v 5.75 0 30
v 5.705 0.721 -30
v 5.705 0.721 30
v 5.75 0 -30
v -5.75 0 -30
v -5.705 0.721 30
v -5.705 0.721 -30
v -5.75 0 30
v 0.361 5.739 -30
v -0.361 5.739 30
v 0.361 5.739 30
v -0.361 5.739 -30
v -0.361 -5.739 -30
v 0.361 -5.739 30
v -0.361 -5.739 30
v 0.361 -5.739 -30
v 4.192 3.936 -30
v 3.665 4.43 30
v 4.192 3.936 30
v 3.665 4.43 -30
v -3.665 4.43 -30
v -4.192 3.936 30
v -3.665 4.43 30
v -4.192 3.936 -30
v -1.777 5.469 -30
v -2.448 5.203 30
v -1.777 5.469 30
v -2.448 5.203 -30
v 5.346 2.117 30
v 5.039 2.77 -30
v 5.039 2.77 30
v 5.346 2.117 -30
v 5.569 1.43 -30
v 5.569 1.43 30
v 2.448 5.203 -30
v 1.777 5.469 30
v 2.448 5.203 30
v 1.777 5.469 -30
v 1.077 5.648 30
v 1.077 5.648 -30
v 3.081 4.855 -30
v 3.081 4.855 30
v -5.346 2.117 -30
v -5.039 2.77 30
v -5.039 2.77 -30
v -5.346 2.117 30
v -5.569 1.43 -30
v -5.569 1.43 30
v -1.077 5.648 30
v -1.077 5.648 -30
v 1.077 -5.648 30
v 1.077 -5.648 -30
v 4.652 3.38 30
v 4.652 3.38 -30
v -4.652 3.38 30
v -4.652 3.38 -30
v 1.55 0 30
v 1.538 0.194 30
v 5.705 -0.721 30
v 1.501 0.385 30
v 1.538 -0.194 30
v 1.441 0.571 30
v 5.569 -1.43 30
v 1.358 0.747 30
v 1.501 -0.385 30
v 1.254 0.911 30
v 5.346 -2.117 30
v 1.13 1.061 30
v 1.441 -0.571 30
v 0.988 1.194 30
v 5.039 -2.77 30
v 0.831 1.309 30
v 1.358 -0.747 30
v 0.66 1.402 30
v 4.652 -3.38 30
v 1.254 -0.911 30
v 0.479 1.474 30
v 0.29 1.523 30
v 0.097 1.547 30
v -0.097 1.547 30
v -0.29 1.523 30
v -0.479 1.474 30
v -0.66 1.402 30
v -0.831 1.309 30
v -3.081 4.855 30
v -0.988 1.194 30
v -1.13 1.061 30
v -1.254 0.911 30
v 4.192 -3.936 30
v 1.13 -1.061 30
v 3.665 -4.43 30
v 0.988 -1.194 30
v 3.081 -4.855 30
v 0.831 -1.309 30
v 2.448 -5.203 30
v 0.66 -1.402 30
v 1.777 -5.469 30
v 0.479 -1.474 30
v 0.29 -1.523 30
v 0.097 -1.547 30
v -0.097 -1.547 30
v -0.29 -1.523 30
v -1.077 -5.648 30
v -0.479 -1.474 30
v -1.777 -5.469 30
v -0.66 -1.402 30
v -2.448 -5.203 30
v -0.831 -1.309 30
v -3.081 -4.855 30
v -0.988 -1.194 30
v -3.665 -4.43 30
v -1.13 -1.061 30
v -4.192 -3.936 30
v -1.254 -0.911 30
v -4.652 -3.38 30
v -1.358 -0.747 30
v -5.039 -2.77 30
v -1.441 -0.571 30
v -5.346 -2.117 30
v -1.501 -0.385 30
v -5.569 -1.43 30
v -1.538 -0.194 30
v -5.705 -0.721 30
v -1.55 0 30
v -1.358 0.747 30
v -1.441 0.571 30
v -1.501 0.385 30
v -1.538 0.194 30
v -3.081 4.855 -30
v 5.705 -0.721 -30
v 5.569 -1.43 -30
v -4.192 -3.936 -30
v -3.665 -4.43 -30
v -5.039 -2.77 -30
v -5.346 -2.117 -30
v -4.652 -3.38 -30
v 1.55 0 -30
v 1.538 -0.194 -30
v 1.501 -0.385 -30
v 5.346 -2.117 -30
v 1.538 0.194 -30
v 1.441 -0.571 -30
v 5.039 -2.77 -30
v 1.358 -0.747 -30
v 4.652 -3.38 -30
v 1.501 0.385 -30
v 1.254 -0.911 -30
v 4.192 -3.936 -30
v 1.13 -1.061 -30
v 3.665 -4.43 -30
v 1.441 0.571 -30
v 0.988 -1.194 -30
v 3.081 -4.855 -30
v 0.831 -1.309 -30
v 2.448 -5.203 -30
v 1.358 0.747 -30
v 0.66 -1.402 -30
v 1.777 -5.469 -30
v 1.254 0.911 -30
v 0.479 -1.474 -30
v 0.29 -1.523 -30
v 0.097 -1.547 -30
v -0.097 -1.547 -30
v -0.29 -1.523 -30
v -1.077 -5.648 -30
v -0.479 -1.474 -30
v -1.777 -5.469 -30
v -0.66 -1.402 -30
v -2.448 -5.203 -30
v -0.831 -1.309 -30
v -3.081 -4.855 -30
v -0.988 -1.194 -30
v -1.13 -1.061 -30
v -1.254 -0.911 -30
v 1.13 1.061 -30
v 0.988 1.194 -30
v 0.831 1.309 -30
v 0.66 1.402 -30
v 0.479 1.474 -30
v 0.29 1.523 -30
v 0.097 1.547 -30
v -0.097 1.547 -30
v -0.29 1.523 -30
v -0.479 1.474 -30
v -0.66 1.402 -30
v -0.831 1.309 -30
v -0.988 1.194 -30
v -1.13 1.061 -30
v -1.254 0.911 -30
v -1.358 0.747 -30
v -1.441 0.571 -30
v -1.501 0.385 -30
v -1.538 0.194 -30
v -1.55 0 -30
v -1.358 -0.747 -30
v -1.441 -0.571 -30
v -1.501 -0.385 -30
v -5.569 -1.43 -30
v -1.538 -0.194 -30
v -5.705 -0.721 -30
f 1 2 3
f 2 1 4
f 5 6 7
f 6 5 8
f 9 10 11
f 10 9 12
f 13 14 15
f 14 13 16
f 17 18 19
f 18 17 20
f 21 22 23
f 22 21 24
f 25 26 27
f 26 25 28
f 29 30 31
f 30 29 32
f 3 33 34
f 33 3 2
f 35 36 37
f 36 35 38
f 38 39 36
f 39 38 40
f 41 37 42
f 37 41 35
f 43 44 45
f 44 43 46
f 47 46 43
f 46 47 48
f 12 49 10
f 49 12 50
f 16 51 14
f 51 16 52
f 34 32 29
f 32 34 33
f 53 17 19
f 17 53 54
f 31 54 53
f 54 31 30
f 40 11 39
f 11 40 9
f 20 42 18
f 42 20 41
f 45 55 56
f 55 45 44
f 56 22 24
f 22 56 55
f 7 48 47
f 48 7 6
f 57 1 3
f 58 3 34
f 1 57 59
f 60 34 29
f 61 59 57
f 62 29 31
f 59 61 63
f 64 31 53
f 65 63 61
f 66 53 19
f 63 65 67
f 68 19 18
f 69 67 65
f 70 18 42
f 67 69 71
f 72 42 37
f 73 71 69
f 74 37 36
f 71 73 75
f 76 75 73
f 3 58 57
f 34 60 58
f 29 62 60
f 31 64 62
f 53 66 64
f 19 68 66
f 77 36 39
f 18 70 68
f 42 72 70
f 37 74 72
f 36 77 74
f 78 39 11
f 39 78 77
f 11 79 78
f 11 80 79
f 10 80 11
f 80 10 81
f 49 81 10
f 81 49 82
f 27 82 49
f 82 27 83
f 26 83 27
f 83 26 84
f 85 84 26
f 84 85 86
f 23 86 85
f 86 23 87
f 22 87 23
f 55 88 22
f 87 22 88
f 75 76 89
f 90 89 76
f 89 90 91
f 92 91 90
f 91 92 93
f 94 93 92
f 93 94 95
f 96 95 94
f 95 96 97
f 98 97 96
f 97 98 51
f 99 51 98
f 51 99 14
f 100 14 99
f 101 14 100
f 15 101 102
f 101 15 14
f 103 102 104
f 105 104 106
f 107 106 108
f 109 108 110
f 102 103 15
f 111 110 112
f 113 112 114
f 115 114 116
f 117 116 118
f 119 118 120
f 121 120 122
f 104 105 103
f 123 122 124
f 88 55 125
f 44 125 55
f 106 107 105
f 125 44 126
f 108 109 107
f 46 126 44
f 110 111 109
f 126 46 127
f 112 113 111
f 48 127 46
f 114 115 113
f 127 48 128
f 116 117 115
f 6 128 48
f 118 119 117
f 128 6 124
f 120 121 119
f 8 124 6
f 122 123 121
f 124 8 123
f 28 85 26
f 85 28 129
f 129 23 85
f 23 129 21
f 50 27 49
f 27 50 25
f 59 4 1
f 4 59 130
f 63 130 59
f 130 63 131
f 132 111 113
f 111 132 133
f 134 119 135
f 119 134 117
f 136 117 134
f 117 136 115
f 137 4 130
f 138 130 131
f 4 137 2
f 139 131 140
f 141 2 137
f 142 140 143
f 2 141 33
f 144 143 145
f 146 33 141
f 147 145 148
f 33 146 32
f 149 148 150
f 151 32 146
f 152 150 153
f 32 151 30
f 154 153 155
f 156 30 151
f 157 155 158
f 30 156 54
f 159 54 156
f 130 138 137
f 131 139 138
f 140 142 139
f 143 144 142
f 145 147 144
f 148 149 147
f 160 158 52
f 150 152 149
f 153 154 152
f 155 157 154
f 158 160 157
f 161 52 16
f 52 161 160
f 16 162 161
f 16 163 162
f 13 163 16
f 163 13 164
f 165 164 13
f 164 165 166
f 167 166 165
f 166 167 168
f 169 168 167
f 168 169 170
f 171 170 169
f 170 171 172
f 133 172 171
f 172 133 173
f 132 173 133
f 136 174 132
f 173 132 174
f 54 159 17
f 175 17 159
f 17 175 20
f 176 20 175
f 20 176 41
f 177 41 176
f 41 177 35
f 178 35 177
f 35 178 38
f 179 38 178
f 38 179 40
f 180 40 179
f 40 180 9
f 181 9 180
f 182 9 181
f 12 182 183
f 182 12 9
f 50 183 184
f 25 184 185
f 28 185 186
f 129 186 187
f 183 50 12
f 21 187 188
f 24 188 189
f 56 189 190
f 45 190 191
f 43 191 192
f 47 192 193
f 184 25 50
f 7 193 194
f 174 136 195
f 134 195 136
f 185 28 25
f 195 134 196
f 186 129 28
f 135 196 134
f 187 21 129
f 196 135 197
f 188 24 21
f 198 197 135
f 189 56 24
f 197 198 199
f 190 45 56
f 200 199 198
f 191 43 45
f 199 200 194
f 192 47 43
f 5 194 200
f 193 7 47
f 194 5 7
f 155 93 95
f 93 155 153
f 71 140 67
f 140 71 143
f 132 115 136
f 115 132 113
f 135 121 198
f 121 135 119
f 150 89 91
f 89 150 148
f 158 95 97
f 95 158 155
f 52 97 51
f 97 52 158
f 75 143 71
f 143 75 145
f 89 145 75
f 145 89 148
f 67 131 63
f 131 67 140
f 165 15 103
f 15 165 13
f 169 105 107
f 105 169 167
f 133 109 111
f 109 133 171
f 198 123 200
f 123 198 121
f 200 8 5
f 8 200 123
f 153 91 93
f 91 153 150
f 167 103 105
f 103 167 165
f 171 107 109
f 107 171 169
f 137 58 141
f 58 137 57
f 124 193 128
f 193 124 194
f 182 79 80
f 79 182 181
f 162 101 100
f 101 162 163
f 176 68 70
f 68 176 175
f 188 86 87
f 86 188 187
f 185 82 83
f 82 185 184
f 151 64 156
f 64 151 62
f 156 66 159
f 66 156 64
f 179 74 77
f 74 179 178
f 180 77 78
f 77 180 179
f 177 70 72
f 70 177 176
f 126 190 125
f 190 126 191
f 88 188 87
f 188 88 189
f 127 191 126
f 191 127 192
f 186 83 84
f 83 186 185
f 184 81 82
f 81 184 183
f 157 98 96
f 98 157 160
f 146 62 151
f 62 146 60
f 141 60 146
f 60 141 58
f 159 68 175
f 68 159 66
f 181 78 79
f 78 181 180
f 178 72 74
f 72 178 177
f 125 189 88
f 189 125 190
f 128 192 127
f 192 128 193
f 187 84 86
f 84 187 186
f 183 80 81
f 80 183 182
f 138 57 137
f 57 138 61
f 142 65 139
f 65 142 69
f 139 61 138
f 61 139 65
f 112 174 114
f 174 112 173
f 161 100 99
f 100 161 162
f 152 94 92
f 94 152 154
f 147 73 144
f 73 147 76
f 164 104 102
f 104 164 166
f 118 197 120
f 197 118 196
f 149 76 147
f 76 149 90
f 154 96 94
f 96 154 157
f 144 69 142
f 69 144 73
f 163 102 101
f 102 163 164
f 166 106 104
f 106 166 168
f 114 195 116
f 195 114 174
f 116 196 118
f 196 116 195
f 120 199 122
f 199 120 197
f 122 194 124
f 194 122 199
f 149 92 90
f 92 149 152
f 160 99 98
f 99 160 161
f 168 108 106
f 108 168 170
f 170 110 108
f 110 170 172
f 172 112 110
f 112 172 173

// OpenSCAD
$fn = 50;


difference() {
	union() {
		translate(v = [0, 0, -30.0000000000]) {
			cylinder(h = 60, r = 5.7500000000);
		}
	}
	union() {
		translate(v = [0, 0, -100.0000000000]) {
			cylinder(h = 200, r = 1.5500000000);
		}
	}
}
